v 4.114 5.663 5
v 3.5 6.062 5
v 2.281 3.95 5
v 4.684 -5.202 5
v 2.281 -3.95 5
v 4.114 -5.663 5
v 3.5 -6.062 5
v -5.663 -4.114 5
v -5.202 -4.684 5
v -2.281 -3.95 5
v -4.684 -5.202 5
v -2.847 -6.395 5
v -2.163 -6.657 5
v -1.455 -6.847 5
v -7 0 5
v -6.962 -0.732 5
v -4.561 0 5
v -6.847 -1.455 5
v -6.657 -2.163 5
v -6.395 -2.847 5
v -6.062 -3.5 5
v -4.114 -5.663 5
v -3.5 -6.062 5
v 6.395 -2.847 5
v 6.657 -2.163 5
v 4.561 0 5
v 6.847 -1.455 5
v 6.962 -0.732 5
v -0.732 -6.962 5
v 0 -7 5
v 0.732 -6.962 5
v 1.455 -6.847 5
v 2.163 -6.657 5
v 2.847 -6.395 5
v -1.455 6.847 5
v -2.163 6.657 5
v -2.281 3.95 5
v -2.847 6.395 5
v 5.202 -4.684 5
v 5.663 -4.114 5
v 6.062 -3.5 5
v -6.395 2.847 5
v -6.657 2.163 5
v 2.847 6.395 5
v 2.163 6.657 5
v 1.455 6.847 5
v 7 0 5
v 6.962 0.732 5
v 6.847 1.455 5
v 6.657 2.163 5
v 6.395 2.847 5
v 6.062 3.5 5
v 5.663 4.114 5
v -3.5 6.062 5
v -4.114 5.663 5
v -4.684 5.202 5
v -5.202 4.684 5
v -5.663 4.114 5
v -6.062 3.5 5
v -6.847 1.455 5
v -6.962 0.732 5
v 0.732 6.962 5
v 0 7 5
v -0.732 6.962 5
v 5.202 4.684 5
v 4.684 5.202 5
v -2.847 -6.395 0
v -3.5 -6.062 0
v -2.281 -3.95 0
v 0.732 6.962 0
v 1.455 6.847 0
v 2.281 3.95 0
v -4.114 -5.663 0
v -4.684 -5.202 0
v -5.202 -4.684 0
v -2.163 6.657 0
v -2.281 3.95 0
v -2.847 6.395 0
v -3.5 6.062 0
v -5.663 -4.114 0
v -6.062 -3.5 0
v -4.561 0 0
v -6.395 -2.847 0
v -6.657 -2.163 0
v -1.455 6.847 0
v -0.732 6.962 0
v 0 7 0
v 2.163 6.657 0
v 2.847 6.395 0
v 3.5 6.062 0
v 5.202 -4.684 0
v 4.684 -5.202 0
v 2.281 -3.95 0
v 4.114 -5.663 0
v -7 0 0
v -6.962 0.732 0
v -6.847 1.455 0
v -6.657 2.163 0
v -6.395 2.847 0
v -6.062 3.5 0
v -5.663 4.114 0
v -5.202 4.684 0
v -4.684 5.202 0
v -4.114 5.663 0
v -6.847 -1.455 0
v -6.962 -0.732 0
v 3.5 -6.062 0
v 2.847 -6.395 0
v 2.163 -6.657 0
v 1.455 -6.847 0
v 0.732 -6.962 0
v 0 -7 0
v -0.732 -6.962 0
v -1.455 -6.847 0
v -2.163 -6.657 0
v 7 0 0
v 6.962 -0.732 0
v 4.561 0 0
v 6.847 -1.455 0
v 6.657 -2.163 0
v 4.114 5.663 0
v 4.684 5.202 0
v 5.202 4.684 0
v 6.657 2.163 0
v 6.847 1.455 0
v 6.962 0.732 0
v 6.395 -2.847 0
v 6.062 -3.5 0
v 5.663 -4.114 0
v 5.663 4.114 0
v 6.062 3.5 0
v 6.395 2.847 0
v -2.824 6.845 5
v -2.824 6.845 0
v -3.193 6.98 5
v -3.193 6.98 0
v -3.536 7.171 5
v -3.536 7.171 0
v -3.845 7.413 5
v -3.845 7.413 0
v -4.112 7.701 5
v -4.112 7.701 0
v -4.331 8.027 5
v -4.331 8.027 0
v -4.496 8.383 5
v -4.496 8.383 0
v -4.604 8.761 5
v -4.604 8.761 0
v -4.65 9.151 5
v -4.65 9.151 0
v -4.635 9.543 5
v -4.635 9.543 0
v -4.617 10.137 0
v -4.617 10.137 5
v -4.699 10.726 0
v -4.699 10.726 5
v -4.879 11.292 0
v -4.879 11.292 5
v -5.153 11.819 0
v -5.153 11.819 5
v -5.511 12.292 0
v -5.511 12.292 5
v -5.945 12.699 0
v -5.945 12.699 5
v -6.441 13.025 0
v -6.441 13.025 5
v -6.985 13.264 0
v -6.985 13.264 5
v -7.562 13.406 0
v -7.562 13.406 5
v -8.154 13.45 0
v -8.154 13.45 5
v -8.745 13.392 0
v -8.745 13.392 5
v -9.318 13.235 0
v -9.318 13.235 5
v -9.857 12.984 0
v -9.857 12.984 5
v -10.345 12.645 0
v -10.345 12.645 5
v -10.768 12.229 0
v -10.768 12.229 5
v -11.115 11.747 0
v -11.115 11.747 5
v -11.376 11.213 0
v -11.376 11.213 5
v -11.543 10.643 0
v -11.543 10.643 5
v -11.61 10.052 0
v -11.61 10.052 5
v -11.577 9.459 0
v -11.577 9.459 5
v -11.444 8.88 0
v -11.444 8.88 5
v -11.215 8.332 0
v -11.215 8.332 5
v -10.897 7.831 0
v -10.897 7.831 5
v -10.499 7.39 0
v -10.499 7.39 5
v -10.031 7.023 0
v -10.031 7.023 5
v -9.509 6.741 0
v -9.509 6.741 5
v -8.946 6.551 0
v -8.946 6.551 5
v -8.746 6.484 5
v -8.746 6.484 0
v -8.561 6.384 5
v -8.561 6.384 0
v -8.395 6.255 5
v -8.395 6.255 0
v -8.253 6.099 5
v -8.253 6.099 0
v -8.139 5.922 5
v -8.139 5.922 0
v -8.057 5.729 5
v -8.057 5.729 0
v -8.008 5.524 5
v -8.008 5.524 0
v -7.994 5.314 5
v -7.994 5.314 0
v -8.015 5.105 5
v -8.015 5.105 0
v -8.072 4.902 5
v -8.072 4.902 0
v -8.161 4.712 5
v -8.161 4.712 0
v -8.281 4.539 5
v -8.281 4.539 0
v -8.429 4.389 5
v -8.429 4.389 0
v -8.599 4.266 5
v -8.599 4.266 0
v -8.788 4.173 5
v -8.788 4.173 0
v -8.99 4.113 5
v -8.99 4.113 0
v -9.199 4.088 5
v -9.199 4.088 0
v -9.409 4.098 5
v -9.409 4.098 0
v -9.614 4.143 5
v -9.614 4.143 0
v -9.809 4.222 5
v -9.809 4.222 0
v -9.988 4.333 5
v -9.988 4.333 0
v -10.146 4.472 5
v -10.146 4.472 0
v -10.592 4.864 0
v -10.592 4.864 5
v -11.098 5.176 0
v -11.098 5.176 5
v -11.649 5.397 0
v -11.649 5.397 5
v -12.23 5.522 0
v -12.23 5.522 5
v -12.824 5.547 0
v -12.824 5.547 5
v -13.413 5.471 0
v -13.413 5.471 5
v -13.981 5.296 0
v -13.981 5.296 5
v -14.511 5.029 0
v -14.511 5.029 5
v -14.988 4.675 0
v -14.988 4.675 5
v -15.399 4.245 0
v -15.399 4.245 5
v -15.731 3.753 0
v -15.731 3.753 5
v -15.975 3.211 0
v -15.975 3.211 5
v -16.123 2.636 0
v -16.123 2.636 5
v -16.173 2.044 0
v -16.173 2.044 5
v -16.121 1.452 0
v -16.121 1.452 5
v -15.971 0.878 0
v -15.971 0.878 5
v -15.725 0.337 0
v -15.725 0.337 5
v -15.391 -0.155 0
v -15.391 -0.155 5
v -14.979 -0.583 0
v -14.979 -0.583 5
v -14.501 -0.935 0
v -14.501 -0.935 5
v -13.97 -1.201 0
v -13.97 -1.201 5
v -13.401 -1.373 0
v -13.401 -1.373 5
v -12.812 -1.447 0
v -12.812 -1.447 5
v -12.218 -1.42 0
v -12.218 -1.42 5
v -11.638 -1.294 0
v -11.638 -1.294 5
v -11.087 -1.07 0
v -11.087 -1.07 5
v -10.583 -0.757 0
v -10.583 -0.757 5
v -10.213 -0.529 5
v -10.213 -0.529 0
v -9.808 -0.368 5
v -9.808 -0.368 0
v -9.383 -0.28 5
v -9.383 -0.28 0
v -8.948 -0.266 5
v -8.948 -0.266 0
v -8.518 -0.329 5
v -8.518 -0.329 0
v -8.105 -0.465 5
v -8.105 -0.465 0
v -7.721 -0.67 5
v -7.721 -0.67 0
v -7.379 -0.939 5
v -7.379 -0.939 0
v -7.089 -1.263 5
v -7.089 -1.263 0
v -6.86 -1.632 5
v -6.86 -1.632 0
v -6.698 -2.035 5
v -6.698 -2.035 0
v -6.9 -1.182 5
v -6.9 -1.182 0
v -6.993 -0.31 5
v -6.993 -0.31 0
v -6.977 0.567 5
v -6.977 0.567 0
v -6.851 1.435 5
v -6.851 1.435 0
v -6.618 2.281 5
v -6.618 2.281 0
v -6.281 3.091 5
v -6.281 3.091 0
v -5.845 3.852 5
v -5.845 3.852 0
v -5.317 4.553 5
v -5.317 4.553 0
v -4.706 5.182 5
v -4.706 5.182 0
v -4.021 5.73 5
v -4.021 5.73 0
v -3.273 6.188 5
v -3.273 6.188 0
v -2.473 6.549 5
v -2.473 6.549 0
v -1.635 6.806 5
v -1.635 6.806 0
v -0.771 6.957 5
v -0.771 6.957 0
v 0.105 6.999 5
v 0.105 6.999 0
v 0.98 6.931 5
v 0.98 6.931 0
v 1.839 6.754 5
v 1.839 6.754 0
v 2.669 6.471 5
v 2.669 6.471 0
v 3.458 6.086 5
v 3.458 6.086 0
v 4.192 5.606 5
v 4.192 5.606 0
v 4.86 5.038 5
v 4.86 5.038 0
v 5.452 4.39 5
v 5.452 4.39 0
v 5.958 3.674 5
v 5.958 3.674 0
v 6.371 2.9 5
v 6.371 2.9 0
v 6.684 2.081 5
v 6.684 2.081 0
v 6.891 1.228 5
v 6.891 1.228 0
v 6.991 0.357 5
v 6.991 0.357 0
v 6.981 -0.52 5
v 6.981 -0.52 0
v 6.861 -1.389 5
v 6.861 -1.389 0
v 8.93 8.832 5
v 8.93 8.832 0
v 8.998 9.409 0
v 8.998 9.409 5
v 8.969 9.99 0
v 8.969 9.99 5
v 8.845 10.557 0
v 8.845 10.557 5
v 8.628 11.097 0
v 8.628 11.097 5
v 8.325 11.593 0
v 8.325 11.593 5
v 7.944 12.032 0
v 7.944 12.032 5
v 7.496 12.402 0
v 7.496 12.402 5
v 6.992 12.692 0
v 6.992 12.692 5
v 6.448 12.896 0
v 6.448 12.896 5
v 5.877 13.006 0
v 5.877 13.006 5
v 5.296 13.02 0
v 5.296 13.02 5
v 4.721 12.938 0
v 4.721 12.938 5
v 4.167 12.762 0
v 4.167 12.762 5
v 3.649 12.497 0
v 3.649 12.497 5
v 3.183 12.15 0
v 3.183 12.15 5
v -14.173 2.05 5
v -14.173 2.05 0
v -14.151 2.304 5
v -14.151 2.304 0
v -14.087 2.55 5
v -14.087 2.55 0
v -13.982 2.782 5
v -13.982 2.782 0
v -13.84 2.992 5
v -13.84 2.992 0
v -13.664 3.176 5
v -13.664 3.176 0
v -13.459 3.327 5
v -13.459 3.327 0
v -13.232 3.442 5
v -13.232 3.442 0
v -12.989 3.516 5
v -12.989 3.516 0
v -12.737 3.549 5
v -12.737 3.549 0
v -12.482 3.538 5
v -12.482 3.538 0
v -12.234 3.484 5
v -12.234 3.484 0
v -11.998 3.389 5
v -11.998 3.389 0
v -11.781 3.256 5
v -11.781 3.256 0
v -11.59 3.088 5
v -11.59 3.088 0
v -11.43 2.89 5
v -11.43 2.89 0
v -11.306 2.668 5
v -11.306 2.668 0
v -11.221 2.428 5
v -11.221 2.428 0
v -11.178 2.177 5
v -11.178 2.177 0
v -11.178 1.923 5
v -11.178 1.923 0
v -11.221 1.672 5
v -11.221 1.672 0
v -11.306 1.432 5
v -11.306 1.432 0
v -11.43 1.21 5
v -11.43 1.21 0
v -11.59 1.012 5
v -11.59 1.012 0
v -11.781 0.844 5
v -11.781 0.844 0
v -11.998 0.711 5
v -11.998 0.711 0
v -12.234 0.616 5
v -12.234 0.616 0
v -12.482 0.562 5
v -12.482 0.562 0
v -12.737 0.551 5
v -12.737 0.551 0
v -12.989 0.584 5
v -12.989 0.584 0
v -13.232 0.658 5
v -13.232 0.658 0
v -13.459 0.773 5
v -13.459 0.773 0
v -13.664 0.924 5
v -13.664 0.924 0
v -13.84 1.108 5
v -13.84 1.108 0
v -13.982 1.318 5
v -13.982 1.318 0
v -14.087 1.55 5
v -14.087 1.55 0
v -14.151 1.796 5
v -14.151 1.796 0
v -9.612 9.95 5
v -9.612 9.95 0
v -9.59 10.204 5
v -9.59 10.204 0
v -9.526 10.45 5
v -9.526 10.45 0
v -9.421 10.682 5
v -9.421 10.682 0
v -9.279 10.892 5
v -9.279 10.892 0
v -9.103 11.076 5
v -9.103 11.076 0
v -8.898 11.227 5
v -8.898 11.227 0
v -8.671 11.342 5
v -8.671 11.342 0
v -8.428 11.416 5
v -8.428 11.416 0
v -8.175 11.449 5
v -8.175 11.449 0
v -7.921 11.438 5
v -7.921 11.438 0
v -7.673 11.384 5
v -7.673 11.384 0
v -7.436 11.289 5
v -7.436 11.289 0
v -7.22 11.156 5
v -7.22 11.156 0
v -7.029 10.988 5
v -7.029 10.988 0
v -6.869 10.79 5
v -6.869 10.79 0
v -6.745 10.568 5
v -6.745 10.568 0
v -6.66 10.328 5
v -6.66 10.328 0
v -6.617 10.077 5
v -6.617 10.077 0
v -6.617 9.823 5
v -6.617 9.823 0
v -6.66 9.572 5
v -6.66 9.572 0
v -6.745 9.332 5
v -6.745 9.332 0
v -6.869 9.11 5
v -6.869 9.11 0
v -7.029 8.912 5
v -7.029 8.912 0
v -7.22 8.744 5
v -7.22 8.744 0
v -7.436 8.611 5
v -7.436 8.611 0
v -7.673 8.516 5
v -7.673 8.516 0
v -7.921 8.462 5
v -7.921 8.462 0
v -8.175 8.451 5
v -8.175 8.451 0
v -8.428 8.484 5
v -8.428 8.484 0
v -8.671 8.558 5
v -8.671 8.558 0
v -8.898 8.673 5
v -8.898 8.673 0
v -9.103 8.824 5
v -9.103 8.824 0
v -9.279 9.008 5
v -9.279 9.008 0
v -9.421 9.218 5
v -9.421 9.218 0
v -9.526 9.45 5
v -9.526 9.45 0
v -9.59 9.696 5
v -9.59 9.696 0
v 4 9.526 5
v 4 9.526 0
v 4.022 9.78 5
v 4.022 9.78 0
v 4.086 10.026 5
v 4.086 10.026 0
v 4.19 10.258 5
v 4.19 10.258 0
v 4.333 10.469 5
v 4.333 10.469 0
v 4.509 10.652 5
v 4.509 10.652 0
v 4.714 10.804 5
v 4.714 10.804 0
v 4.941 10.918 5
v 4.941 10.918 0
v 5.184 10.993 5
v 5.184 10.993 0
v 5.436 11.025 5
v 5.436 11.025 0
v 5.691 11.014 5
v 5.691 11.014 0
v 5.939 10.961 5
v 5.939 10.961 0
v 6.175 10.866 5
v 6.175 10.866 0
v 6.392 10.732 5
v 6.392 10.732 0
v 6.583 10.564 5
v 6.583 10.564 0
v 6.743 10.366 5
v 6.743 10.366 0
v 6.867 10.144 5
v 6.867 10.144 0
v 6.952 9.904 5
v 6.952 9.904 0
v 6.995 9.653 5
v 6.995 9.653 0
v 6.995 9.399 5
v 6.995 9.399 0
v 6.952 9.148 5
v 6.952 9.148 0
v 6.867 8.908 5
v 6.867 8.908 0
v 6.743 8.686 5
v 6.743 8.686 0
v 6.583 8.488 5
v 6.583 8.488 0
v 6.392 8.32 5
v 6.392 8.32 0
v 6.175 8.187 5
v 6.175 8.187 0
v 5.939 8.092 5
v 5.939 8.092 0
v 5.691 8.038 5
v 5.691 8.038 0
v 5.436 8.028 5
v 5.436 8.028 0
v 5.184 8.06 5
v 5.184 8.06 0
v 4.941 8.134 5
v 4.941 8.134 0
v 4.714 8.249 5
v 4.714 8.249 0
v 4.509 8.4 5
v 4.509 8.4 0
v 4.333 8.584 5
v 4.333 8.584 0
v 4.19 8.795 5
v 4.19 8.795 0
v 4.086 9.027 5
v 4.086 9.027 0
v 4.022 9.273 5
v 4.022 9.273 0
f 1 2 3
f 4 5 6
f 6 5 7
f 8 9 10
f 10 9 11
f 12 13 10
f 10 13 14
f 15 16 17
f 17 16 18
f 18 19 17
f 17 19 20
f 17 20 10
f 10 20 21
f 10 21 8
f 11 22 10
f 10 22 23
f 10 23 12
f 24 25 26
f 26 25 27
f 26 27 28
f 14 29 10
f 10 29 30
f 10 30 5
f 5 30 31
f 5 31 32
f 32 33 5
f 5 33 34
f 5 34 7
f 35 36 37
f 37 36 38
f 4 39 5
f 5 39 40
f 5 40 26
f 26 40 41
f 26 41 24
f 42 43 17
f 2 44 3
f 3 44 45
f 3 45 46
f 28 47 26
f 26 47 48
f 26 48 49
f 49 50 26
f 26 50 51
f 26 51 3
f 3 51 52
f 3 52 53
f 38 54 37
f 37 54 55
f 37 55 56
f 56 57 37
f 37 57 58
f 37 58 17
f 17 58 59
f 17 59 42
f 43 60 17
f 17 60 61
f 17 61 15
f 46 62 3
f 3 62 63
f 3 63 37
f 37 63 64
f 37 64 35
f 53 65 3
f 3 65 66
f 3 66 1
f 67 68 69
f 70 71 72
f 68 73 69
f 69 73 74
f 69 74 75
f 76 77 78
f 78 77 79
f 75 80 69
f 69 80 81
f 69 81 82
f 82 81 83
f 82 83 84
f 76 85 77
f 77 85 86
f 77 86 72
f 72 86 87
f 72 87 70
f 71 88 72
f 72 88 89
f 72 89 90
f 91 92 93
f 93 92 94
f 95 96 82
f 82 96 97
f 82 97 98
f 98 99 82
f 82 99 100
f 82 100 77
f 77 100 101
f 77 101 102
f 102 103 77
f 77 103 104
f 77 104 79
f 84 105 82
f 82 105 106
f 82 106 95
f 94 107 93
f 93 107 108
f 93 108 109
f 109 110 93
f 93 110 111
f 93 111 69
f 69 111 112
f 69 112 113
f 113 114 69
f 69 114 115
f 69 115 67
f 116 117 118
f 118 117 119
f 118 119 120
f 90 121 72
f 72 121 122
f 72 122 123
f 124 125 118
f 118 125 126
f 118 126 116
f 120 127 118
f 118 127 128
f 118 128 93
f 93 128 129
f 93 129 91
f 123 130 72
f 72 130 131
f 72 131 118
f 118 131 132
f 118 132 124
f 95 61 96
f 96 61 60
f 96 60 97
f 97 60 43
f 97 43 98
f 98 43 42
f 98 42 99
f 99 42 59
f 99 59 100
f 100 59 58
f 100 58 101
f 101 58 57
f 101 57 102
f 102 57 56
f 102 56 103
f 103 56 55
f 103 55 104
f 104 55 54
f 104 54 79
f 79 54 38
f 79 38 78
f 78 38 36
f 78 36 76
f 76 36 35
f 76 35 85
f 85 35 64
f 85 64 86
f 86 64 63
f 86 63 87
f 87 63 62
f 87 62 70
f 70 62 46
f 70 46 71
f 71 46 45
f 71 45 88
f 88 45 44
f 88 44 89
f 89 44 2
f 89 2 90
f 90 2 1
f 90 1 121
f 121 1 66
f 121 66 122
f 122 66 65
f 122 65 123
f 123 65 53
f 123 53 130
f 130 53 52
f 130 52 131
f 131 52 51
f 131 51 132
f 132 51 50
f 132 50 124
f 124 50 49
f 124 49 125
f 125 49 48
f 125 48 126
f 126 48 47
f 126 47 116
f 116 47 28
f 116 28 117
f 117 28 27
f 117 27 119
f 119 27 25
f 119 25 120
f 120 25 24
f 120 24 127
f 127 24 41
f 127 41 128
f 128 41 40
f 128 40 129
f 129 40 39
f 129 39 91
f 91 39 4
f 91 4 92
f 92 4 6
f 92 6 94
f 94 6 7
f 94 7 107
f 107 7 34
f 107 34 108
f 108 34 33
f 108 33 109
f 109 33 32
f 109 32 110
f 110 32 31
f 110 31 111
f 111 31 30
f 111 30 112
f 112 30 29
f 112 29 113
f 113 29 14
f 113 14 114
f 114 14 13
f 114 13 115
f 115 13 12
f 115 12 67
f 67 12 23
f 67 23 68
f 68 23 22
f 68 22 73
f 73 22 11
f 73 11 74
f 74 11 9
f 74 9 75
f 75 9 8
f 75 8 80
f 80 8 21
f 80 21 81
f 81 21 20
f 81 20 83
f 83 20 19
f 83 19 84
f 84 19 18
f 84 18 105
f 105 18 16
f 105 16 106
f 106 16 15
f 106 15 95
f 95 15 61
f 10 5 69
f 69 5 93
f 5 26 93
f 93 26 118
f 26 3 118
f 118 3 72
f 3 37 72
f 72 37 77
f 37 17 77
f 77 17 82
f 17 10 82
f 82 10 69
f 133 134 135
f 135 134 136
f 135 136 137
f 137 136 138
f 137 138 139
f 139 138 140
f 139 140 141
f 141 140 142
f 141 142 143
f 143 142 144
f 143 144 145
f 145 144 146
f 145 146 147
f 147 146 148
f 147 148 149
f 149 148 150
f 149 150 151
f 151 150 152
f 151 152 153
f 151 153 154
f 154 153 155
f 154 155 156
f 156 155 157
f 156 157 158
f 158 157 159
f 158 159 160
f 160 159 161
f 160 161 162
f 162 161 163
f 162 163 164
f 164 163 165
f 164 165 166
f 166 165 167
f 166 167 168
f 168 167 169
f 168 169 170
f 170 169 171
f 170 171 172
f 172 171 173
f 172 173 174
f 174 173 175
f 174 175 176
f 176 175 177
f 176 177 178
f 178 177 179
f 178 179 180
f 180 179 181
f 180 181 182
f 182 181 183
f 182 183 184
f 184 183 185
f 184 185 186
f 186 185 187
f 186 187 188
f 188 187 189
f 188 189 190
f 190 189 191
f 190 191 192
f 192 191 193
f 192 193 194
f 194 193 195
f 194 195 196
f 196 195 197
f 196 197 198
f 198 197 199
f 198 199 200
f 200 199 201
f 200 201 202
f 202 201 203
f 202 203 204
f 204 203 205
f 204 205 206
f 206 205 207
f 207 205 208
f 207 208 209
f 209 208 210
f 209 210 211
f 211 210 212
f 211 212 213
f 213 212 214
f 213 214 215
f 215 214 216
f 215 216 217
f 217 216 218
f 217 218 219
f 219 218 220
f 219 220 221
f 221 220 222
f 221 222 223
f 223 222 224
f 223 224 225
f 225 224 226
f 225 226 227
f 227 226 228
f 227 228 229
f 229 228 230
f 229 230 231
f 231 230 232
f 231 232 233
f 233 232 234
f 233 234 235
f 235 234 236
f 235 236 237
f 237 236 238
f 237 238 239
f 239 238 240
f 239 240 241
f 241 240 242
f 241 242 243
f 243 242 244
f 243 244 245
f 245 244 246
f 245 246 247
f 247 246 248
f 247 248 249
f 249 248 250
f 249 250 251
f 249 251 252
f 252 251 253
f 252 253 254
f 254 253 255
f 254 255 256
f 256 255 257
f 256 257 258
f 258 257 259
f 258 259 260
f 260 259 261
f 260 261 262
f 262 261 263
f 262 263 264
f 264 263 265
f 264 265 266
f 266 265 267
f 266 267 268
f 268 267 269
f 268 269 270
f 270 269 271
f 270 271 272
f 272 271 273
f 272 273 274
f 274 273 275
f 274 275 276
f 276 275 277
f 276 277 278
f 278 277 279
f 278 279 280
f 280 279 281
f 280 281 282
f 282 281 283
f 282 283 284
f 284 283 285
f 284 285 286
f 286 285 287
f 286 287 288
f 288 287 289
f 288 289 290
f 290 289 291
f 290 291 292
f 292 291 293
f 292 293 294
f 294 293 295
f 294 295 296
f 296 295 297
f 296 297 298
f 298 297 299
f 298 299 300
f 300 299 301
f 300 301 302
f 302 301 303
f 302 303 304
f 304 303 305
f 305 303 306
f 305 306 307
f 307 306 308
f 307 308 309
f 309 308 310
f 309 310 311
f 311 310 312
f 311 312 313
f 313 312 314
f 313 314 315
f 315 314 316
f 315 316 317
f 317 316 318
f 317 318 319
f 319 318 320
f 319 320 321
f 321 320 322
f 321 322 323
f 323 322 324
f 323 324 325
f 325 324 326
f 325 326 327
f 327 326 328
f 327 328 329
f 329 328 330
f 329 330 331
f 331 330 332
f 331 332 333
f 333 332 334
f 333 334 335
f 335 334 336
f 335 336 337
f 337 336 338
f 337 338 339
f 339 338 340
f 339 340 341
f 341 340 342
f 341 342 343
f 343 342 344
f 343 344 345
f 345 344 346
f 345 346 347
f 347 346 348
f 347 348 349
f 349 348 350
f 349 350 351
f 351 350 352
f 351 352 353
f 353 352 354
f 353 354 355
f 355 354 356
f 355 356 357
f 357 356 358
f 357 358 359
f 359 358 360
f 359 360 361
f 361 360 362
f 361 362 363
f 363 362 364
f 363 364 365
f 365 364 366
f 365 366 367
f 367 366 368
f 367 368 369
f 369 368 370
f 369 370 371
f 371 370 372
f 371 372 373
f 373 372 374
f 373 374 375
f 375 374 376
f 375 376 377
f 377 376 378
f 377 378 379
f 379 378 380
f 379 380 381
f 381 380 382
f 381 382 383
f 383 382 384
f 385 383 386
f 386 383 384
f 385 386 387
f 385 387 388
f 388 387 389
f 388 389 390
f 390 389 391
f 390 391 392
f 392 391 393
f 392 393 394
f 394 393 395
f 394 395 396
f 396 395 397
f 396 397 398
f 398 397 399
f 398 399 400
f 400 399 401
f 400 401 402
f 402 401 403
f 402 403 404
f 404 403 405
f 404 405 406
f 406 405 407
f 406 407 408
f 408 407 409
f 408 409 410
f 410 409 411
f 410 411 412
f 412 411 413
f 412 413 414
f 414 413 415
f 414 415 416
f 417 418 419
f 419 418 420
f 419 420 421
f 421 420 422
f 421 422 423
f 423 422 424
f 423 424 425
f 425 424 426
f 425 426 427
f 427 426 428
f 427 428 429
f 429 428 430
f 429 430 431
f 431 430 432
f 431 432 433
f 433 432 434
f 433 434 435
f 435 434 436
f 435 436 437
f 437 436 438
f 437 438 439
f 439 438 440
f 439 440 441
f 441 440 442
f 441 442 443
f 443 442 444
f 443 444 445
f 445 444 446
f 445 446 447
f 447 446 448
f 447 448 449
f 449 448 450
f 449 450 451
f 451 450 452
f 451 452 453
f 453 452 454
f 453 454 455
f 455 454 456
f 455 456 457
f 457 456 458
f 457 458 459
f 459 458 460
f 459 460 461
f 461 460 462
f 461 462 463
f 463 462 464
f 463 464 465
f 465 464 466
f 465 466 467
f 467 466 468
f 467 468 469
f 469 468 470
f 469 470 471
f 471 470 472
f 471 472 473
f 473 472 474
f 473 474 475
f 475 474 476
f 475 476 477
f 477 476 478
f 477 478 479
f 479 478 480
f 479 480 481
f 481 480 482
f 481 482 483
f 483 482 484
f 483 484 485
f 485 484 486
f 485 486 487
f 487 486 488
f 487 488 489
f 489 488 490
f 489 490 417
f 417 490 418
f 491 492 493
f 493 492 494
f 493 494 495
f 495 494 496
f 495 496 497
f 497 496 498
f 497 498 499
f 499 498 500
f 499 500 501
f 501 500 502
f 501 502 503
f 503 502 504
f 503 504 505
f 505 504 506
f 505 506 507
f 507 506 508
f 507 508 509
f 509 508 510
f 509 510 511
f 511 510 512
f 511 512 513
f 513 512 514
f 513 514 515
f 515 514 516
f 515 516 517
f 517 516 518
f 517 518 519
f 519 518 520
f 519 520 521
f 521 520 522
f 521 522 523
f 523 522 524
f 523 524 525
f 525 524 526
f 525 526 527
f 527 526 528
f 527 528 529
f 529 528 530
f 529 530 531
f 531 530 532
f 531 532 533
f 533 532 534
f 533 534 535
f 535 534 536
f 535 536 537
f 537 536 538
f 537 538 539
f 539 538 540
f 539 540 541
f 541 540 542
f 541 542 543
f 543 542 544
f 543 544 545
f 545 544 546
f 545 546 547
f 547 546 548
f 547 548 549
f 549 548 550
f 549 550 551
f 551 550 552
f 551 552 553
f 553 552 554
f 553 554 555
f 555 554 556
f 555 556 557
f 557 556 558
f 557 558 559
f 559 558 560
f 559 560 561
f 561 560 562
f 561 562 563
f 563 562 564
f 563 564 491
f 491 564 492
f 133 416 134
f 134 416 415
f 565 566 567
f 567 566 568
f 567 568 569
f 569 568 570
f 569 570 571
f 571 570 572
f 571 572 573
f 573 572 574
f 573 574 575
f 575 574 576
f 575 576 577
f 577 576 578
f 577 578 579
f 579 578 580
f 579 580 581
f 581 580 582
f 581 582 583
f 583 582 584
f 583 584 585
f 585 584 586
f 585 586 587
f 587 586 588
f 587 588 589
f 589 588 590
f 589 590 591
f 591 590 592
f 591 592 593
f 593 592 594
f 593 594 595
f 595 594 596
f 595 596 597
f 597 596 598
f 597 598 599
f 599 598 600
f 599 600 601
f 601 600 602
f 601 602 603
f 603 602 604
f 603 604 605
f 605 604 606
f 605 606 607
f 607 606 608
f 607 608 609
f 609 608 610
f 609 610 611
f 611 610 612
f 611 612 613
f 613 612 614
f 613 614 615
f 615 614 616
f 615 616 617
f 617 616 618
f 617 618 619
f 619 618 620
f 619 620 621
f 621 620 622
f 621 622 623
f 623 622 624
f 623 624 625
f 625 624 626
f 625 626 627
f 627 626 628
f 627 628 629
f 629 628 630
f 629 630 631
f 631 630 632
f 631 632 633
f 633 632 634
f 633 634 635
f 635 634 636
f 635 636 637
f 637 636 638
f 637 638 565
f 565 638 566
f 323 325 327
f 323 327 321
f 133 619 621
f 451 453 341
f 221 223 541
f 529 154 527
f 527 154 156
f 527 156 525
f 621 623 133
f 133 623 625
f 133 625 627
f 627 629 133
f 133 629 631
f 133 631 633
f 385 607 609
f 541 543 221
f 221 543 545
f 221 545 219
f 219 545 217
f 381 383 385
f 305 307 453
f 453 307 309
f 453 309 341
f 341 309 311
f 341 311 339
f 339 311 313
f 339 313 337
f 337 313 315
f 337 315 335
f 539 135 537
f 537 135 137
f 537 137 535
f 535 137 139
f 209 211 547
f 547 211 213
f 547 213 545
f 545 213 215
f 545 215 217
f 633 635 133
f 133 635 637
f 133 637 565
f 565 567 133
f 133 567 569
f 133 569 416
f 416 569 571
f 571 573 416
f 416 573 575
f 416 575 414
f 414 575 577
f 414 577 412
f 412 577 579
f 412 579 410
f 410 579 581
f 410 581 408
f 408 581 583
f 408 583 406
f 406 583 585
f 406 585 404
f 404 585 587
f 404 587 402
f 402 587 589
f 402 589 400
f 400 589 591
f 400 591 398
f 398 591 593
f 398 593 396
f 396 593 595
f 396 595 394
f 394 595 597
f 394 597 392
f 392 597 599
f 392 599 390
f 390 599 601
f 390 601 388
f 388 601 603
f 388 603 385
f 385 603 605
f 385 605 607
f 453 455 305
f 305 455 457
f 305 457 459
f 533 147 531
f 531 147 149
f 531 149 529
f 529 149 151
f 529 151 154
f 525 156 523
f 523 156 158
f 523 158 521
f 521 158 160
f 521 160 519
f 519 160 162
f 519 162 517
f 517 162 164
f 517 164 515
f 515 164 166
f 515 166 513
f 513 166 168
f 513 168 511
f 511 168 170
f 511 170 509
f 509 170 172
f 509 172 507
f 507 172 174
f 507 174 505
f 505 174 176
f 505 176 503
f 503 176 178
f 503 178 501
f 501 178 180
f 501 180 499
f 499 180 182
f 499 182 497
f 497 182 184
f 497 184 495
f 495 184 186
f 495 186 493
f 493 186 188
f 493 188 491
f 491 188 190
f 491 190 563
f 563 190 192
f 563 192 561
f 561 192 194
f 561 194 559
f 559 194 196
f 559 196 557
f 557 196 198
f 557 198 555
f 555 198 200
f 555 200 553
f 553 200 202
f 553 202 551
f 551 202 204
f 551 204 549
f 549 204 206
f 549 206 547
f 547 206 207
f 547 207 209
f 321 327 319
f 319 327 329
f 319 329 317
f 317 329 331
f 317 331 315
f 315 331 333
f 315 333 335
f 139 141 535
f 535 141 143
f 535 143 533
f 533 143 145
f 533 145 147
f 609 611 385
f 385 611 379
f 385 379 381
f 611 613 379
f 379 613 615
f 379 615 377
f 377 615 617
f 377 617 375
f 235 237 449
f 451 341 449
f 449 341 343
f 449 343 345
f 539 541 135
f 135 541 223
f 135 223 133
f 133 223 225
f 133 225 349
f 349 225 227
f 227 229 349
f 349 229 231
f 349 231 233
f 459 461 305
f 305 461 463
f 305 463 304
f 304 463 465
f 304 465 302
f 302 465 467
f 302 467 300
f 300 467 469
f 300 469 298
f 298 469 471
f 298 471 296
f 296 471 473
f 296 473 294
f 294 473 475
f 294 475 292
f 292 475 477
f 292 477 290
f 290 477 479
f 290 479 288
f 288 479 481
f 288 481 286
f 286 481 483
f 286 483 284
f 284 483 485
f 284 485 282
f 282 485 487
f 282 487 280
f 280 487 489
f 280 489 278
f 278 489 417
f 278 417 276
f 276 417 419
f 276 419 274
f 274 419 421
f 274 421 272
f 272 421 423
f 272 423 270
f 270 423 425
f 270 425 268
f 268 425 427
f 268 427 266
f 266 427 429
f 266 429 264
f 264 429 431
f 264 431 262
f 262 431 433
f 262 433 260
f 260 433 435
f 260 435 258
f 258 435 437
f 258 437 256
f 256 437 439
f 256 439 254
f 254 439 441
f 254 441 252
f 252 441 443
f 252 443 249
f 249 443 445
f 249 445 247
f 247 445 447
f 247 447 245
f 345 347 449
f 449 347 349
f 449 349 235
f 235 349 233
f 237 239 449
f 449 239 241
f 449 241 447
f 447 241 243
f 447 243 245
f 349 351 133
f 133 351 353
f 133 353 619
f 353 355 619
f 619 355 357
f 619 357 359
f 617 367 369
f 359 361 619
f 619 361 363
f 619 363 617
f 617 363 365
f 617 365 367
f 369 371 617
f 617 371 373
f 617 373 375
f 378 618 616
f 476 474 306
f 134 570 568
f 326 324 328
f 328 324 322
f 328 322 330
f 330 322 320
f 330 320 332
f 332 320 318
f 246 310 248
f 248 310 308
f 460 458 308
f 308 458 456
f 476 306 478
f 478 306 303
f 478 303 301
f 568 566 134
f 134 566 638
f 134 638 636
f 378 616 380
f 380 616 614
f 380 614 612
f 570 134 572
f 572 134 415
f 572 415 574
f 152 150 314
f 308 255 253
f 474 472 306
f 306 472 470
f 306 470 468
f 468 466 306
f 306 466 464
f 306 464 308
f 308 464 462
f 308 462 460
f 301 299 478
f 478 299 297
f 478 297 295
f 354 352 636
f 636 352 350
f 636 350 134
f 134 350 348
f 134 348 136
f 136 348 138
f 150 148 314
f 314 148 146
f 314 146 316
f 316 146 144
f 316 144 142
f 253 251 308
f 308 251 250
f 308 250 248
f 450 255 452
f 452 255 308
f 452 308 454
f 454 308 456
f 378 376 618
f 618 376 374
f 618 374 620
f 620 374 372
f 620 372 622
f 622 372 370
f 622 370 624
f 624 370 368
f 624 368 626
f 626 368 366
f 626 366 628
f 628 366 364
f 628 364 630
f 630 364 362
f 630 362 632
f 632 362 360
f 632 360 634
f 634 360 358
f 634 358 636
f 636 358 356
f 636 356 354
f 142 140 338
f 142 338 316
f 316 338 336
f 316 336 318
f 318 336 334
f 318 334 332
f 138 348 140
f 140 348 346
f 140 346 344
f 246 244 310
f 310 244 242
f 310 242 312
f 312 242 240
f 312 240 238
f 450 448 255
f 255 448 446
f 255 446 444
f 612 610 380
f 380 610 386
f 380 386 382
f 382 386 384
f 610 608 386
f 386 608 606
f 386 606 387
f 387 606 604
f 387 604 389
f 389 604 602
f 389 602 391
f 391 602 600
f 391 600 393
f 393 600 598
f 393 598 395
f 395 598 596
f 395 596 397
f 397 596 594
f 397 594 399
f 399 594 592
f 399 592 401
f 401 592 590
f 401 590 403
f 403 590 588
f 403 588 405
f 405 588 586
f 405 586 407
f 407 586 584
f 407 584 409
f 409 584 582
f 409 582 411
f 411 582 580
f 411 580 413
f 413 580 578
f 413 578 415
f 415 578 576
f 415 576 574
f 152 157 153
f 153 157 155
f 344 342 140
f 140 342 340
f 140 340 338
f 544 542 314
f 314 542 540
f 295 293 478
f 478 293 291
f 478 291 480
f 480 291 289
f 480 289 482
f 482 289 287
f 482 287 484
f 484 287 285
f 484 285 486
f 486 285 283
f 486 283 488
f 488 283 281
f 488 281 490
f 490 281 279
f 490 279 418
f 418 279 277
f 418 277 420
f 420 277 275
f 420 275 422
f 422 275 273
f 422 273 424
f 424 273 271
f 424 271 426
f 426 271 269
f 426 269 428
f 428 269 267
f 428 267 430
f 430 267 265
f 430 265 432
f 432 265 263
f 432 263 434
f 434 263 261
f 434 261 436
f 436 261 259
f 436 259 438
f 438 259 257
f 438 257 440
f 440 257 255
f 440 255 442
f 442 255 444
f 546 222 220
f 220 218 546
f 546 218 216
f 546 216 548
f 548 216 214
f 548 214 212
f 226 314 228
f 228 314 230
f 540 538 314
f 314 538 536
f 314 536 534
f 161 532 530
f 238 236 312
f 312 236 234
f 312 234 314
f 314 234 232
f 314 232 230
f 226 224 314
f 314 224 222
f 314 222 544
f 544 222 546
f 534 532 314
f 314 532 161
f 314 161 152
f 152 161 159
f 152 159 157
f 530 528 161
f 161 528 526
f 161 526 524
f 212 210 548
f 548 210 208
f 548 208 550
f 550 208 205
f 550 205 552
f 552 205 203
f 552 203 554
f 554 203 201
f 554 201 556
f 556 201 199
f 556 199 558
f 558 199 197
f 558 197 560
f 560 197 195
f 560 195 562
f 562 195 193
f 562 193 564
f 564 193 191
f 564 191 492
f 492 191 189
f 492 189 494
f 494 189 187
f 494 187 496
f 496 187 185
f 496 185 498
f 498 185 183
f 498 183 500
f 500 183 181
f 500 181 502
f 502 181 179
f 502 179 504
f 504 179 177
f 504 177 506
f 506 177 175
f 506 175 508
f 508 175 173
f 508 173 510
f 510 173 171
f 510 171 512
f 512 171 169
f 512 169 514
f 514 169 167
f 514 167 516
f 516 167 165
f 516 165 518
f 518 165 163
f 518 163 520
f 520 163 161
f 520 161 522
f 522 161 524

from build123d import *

# Parameters (mm, degrees)
SKETCH_1_R      = 7
EXTRUDE_1_DEPTH = 5
SKETCH_2_R      = 1.5
EXTRUDE_4_DEPTH = 5


with BuildPart() as part:
    # Эскиз1 → Бобышка-Вытянуть1 (new body)
    with BuildSketch(Plane.XY):
        Circle(SKETCH_1_R)
        Polygon((2.280533563, -3.95), (4.561067127, 0), (2.280533563, 3.95), (-2.280533563, 3.95), (-4.561067127, 0), (-2.280533563, -3.95), align=None, mode=Mode.SUBTRACT)
    extrude(amount=EXTRUDE_1_DEPTH)


with BuildPart() as body_2:
    # Эскиз2 → Бобышка-Вытянуть4 (new body)
    with BuildSketch(Plane(origin=(0, 0, 0), x_dir=(-1, 0, 0), z_dir=(0, 0, -1))):
        with BuildLine():
            ThreePointArc((-3.183255839, 12.149768815), (-7.25, 12.557368355), (-8.930380524, 8.831664831))
            Line((-8.930380524, 8.831664831), (-6.860761049, -1.389229221))
            ThreePointArc((-6.860761049, -1.389229221), (0.333277598, 6.992061645), (6.697521487, -2.035486659))
            ThreePointArc((6.697521487, -2.035486659), (8.308163671, -0.387678075), (10.582553783, -0.757260263))
            ThreePointArc((10.582553783, -0.757260263), (16.160709129, 2.341131993), (10.146078615, 4.471876327))
            ThreePointArc((10.146078615, 4.471876327), (8.161132603, 4.711832074), (8.945797756, 6.550823653))
            ThreePointArc((8.945797756, 6.550823653), (10.107834404, 12.825018611), (4.635470256, 9.543390634))
            ThreePointArc((4.635470256, 9.543390634), (4.228105436, 7.859600013), (2.824036783, 6.844864498))
            Line((2.824036783, 6.844864498), (-3.183255839, 12.149768815))
        make_face()
        with Locations((-5.5, 9.526279442)):
            Circle(SKETCH_2_R, mode=Mode.SUBTRACT)
        with Locations((12.672838409, 2.05)):
            Circle(SKETCH_2_R, mode=Mode.SUBTRACT)
        with Locations((8.111771282, 9.95)):
            Circle(SKETCH_2_R, mode=Mode.SUBTRACT)
    extrude(amount=-EXTRUDE_4_DEPTH)


solid = Compound([part.part, body_2.part])
